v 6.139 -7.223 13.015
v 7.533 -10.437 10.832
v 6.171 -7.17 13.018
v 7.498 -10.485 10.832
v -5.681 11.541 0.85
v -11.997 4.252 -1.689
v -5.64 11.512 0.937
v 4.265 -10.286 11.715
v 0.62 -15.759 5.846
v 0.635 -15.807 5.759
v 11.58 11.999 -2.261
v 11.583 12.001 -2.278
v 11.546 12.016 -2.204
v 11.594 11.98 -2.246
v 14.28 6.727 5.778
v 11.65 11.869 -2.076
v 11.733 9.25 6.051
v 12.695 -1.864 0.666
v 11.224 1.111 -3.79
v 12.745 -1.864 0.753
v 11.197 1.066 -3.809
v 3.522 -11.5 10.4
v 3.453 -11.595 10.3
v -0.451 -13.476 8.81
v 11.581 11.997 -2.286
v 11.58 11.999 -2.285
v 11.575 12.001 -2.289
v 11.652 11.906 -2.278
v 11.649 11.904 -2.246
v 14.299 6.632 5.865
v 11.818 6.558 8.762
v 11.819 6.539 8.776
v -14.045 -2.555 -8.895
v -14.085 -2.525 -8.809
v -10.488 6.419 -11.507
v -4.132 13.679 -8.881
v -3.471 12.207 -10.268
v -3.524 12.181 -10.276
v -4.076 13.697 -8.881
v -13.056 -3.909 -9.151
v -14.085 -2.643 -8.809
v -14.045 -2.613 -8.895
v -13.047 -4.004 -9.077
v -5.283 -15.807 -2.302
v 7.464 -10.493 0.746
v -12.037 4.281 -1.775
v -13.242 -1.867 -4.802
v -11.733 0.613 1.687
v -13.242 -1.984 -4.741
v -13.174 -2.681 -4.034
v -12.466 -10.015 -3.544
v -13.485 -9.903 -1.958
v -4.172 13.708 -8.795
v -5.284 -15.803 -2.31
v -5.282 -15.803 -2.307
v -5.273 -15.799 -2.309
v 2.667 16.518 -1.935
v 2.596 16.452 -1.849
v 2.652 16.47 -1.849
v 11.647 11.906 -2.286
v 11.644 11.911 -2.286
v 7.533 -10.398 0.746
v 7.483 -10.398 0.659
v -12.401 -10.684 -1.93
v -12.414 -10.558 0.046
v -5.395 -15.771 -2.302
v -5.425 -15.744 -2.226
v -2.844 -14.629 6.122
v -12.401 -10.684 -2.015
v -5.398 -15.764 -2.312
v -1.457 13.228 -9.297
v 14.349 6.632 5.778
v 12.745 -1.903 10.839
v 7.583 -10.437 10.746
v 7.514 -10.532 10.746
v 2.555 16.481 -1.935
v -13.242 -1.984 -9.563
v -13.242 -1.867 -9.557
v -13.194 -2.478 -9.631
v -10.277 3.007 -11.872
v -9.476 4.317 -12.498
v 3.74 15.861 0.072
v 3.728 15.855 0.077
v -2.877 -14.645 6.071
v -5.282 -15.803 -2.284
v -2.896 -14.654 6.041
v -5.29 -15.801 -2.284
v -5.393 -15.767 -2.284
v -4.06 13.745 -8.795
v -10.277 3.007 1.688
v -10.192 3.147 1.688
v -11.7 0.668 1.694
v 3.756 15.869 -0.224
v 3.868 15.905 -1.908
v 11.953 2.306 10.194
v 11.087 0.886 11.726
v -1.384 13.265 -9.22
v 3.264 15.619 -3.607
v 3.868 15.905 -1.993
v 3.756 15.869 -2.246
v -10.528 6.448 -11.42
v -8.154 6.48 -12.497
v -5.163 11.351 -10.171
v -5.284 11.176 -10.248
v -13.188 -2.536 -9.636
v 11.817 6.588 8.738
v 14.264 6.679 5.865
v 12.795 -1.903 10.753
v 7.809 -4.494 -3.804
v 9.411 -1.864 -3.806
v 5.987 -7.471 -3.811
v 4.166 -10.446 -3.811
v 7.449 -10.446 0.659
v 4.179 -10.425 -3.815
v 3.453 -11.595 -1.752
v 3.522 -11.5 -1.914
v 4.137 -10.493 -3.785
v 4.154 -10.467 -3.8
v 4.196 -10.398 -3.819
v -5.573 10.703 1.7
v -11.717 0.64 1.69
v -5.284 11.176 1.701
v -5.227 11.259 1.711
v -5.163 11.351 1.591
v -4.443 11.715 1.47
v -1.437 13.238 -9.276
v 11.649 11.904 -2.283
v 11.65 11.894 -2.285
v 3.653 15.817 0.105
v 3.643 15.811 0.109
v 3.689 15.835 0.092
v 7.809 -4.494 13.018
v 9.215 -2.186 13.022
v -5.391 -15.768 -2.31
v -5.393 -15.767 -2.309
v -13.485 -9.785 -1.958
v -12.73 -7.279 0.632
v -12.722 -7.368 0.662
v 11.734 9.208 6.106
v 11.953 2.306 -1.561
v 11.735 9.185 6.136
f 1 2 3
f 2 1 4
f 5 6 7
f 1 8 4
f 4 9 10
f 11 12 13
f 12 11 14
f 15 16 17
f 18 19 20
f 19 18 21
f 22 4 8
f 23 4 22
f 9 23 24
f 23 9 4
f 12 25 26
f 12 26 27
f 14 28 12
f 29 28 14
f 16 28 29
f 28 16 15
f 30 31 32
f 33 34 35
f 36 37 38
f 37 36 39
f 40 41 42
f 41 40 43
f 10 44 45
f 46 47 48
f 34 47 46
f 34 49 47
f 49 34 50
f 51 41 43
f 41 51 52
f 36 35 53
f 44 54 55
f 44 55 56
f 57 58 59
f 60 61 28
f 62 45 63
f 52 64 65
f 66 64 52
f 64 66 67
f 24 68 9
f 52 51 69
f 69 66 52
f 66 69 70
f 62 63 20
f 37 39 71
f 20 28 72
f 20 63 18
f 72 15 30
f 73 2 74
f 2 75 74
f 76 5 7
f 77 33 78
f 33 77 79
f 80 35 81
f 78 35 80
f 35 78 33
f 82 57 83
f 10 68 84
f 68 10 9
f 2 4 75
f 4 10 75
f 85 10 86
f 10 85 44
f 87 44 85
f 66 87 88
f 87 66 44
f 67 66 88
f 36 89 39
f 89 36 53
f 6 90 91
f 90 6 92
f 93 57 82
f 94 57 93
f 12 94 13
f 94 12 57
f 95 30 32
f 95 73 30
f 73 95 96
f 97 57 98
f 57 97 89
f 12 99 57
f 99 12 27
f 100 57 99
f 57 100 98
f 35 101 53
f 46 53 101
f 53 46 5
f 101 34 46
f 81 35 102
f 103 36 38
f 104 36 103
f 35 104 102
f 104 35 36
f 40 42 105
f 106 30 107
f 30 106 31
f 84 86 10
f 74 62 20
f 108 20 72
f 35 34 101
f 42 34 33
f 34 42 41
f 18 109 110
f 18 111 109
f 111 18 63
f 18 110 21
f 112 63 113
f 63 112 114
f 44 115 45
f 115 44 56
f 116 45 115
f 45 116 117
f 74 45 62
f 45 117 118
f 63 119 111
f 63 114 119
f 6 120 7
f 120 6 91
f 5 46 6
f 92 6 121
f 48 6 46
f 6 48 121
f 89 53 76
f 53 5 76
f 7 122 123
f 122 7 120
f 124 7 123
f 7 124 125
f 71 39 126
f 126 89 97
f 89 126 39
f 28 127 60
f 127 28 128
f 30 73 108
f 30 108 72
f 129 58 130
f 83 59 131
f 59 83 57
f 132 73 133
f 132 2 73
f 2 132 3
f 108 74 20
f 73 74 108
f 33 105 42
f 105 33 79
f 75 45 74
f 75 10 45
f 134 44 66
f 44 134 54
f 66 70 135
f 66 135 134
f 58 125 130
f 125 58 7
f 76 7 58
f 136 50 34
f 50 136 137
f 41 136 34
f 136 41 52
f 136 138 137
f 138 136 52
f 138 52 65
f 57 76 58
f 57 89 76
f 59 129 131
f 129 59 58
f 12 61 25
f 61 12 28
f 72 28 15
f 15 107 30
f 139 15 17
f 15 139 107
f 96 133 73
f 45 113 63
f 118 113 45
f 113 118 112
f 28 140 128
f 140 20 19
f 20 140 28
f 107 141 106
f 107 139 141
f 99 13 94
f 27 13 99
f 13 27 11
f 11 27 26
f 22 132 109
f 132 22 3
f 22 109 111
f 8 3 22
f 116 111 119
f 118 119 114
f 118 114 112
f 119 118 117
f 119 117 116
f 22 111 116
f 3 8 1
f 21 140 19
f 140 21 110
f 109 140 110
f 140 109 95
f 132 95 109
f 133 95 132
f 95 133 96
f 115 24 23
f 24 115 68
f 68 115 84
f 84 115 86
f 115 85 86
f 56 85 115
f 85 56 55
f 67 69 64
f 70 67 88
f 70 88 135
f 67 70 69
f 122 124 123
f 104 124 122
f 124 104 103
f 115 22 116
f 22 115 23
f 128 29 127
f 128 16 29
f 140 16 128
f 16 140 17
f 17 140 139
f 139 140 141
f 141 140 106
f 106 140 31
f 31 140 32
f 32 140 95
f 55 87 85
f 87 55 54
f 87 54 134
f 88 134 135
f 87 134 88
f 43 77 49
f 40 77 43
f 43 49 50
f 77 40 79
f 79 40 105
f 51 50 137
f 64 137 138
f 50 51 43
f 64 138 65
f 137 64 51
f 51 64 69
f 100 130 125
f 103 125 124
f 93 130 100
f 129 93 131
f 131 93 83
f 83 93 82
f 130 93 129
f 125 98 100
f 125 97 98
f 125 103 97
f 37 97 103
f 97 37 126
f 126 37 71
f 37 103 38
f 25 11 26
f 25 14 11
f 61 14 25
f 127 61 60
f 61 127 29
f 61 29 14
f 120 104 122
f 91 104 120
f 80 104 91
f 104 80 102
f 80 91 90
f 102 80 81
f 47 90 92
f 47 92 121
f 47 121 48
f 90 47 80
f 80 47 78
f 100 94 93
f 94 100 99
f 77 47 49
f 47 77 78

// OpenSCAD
// Auto-generated OpenSCAD file

    inner_points = 10*[[0.0700122788145141, -0.5899867463576787, -1.5485662456686995], [0.5536702496302224, 0.20951801959251765, 1.5496595452459865], [0.3837392237867054, 1.5810057288487958, -0.4677500511375285], [-1.2320578889140816, -1.0625183532543938, 0.46665675156024133], [0.5910683620661039, 0.2632714000188084, -1.527327277975484], [-0.3586733514761777, -1.290553069521443, -0.9780967397079723], [0.9823558799209142, 0.910084342756282, 0.9791900392852595], [0.03261416637863256, -0.6437401267839695, 1.5284205775527713], [0.08730081805517803, 1.0936030862461223, -1.2890678553955885], [-1.2199065055817309, -1.0450528212147916, -0.5331168723535343], [0.3715878404543547, 1.5635401968091933, 0.5320235727762472], [-0.9356194831825542, -0.5751157106517207, 1.2879745558183013], [1.0054691845213792, 0.9433057588699332, -0.9224924004011736], [-0.5312451885235989, -1.5708350453974695, -0.033818721824939835], [1.1549277169683354, 1.1903663186323088, 0.034912021402226934], [-0.3817866560766427, -1.3237744856350941, 0.9235856999784607], [-0.40449798132161563, 0.2875035122688776, -1.6182143543367875], [-0.903806748608131, -0.5293903541404417, -1.3294667726436182], [0.05548808348075484, 1.0478777297348434, 1.328373473066331], [-0.4438206838057605, 0.23098386332552417, 1.6171210547595003], [1.185256496068756, 0.23064800053697915, -0.2444102209461938], [-0.9999741793416539, 0.3230904868027798, -0.8156299881576774], [0.7708556736134807, -0.4493863583141455, -0.8492450985205042], [1.0126846590213348, -0.04963397533904733, 0.6998677969368388], [-0.5081753799648603, 1.1291900607800247, -0.4864834892164787], [-1.3160739363152536, -0.19257198027157013, -0.019280087867593804], [0.3421700433227889, -1.1499526814779097, -0.27877559255977724], [0.49162857576974506, -0.9028921217155343, 0.6786288292436233], [-0.5203267632972108, 1.1117245287404225, 0.5132901346972969], [-1.0196355305837264, 0.2948306623311031, 0.8020377163904663]];

    outer_points = 10*[[-0.6456324675968002, -0.1902777633799494, -1.5332707609435225], [1.2694564683720715, -0.1902777633799494, 1.0752863732456437], [0.2636354735959513, 1.6422548517857285, -0.19354967234384785], [-0.8874594743712225, -1.26169932502583, 0.6515340600417266], [-0.12445942987975245, 0.663172955851532, -1.532539597451722], [-0.8010560642832288, -1.0437284826114308, -1.0358118426032024], [1.4248800650585003, 0.663172955851532, 0.5778274549053235], [0.7482834306550238, -1.0437284826114308, 1.074555209753843], [-0.40911482956083434, 1.3649519033432802, -0.8794870633552854], [-1.3403702046054238, -0.9843963765833815, -0.1957999621855453], [0.7165462038301526, 1.3649519033432802, 0.6537843498834242], [-0.214709171214437, -0.9843963765833815, 1.3374714510531642], [0.5633926624800331, 1.1906345080596314, -1.0338976317303359], [-0.5313636886585785, -1.57119003481953, -0.23017524123000543], [1.1551876894338498, 1.1906345080596314, -0.22780914646787348], [0.06043133829523831, -1.57119003481953, 0.575913244032457], [-1.0447369557761081, 0.6389633591403906, -1.1420230539389458], [-1.4004448568371106, -0.2584078323804918, -0.8808778189619931], [0.7766208560618393, 0.6389633591403906, 1.338862206659872], [0.42091295500083675, -0.2584078323804918, 1.6000074416368246], [0.9947883785101106, 0.34107898385562474, -0.7303302627900091], [-1.1956160829923428, 0.4222705456034471, -0.17751296403220418], [0.3069362861503253, -0.18638256835247435, -1.2289722285113953], [1.2644807541347611, -0.18638256835247435, 0.07530633858318769], [-0.5599939567770693, 1.1482590898063367, 0.08502302655145622], [-1.1355414307606564, -0.3037179985994425, 0.5075648927442435], [0.1515126894638965, -1.039833287583956, -0.7315133101710751], [0.7433077164177133, -1.039833287583956, 0.07457517509138728], [-0.10708322654286795, 0.8709561413638883, 0.9323570487787283], [-0.4627911276038704, -0.02641505015699408, 1.1935022837556808]];

    // Convex hull for inner set (I)
    module inner_hull() {
        hull() {
            for (p = inner_points) {
                translate(p) sphere(r=0.1);
            }
        }
    }

    // Convex hull for outer set (O) minus inner hull (O \ I)
    module outer_minus_inner() {
        difference() {
            hull() {
                for (p = outer_points) {
                    translate(p) sphere(r=0.1);
                }
            }
            inner_hull(); // Subtract inner hull
        }
    }

    // Convex hull for outer set (O) minus all translated inner hulls
    module outer_minus_AllTranslationInner() {
        difference() {
            hull() {
                for (p = outer_points) {
                    translate(p) sphere(r=0.1);
                }
            }
            hull() {
                translate([0,0,50]) inner_hull();
                translate([0,0,-50]) inner_hull();
            }; // Subtract translated inner hulls
        }
    }

    // Difference between outer_minus_inner and outer_minus_AllTranslationInner
    module outer_minus_inner_diff() {
        difference() {
            // Outer minus inner
            difference() {
                hull() {
                    for (p = outer_points) {
                        translate(p) sphere(r=0.1);
                    }
                }
                inner_hull();
            }

            // Subtract Outer minus AllTranslationInner
            difference() {
                hull() {
                    for (p = outer_points) {
                        translate(p) sphere(r=0.1);
                    }
                }
                hull() {
                    translate([0,0,50]) inner_hull();
                    translate([0,0,-50]) inner_hull();
                };
            }
        }
    }

    // Rendering all with colors applied
    color([0, 1, 0, 1]) outer_minus_AllTranslationInner(); // Opaque green
    
